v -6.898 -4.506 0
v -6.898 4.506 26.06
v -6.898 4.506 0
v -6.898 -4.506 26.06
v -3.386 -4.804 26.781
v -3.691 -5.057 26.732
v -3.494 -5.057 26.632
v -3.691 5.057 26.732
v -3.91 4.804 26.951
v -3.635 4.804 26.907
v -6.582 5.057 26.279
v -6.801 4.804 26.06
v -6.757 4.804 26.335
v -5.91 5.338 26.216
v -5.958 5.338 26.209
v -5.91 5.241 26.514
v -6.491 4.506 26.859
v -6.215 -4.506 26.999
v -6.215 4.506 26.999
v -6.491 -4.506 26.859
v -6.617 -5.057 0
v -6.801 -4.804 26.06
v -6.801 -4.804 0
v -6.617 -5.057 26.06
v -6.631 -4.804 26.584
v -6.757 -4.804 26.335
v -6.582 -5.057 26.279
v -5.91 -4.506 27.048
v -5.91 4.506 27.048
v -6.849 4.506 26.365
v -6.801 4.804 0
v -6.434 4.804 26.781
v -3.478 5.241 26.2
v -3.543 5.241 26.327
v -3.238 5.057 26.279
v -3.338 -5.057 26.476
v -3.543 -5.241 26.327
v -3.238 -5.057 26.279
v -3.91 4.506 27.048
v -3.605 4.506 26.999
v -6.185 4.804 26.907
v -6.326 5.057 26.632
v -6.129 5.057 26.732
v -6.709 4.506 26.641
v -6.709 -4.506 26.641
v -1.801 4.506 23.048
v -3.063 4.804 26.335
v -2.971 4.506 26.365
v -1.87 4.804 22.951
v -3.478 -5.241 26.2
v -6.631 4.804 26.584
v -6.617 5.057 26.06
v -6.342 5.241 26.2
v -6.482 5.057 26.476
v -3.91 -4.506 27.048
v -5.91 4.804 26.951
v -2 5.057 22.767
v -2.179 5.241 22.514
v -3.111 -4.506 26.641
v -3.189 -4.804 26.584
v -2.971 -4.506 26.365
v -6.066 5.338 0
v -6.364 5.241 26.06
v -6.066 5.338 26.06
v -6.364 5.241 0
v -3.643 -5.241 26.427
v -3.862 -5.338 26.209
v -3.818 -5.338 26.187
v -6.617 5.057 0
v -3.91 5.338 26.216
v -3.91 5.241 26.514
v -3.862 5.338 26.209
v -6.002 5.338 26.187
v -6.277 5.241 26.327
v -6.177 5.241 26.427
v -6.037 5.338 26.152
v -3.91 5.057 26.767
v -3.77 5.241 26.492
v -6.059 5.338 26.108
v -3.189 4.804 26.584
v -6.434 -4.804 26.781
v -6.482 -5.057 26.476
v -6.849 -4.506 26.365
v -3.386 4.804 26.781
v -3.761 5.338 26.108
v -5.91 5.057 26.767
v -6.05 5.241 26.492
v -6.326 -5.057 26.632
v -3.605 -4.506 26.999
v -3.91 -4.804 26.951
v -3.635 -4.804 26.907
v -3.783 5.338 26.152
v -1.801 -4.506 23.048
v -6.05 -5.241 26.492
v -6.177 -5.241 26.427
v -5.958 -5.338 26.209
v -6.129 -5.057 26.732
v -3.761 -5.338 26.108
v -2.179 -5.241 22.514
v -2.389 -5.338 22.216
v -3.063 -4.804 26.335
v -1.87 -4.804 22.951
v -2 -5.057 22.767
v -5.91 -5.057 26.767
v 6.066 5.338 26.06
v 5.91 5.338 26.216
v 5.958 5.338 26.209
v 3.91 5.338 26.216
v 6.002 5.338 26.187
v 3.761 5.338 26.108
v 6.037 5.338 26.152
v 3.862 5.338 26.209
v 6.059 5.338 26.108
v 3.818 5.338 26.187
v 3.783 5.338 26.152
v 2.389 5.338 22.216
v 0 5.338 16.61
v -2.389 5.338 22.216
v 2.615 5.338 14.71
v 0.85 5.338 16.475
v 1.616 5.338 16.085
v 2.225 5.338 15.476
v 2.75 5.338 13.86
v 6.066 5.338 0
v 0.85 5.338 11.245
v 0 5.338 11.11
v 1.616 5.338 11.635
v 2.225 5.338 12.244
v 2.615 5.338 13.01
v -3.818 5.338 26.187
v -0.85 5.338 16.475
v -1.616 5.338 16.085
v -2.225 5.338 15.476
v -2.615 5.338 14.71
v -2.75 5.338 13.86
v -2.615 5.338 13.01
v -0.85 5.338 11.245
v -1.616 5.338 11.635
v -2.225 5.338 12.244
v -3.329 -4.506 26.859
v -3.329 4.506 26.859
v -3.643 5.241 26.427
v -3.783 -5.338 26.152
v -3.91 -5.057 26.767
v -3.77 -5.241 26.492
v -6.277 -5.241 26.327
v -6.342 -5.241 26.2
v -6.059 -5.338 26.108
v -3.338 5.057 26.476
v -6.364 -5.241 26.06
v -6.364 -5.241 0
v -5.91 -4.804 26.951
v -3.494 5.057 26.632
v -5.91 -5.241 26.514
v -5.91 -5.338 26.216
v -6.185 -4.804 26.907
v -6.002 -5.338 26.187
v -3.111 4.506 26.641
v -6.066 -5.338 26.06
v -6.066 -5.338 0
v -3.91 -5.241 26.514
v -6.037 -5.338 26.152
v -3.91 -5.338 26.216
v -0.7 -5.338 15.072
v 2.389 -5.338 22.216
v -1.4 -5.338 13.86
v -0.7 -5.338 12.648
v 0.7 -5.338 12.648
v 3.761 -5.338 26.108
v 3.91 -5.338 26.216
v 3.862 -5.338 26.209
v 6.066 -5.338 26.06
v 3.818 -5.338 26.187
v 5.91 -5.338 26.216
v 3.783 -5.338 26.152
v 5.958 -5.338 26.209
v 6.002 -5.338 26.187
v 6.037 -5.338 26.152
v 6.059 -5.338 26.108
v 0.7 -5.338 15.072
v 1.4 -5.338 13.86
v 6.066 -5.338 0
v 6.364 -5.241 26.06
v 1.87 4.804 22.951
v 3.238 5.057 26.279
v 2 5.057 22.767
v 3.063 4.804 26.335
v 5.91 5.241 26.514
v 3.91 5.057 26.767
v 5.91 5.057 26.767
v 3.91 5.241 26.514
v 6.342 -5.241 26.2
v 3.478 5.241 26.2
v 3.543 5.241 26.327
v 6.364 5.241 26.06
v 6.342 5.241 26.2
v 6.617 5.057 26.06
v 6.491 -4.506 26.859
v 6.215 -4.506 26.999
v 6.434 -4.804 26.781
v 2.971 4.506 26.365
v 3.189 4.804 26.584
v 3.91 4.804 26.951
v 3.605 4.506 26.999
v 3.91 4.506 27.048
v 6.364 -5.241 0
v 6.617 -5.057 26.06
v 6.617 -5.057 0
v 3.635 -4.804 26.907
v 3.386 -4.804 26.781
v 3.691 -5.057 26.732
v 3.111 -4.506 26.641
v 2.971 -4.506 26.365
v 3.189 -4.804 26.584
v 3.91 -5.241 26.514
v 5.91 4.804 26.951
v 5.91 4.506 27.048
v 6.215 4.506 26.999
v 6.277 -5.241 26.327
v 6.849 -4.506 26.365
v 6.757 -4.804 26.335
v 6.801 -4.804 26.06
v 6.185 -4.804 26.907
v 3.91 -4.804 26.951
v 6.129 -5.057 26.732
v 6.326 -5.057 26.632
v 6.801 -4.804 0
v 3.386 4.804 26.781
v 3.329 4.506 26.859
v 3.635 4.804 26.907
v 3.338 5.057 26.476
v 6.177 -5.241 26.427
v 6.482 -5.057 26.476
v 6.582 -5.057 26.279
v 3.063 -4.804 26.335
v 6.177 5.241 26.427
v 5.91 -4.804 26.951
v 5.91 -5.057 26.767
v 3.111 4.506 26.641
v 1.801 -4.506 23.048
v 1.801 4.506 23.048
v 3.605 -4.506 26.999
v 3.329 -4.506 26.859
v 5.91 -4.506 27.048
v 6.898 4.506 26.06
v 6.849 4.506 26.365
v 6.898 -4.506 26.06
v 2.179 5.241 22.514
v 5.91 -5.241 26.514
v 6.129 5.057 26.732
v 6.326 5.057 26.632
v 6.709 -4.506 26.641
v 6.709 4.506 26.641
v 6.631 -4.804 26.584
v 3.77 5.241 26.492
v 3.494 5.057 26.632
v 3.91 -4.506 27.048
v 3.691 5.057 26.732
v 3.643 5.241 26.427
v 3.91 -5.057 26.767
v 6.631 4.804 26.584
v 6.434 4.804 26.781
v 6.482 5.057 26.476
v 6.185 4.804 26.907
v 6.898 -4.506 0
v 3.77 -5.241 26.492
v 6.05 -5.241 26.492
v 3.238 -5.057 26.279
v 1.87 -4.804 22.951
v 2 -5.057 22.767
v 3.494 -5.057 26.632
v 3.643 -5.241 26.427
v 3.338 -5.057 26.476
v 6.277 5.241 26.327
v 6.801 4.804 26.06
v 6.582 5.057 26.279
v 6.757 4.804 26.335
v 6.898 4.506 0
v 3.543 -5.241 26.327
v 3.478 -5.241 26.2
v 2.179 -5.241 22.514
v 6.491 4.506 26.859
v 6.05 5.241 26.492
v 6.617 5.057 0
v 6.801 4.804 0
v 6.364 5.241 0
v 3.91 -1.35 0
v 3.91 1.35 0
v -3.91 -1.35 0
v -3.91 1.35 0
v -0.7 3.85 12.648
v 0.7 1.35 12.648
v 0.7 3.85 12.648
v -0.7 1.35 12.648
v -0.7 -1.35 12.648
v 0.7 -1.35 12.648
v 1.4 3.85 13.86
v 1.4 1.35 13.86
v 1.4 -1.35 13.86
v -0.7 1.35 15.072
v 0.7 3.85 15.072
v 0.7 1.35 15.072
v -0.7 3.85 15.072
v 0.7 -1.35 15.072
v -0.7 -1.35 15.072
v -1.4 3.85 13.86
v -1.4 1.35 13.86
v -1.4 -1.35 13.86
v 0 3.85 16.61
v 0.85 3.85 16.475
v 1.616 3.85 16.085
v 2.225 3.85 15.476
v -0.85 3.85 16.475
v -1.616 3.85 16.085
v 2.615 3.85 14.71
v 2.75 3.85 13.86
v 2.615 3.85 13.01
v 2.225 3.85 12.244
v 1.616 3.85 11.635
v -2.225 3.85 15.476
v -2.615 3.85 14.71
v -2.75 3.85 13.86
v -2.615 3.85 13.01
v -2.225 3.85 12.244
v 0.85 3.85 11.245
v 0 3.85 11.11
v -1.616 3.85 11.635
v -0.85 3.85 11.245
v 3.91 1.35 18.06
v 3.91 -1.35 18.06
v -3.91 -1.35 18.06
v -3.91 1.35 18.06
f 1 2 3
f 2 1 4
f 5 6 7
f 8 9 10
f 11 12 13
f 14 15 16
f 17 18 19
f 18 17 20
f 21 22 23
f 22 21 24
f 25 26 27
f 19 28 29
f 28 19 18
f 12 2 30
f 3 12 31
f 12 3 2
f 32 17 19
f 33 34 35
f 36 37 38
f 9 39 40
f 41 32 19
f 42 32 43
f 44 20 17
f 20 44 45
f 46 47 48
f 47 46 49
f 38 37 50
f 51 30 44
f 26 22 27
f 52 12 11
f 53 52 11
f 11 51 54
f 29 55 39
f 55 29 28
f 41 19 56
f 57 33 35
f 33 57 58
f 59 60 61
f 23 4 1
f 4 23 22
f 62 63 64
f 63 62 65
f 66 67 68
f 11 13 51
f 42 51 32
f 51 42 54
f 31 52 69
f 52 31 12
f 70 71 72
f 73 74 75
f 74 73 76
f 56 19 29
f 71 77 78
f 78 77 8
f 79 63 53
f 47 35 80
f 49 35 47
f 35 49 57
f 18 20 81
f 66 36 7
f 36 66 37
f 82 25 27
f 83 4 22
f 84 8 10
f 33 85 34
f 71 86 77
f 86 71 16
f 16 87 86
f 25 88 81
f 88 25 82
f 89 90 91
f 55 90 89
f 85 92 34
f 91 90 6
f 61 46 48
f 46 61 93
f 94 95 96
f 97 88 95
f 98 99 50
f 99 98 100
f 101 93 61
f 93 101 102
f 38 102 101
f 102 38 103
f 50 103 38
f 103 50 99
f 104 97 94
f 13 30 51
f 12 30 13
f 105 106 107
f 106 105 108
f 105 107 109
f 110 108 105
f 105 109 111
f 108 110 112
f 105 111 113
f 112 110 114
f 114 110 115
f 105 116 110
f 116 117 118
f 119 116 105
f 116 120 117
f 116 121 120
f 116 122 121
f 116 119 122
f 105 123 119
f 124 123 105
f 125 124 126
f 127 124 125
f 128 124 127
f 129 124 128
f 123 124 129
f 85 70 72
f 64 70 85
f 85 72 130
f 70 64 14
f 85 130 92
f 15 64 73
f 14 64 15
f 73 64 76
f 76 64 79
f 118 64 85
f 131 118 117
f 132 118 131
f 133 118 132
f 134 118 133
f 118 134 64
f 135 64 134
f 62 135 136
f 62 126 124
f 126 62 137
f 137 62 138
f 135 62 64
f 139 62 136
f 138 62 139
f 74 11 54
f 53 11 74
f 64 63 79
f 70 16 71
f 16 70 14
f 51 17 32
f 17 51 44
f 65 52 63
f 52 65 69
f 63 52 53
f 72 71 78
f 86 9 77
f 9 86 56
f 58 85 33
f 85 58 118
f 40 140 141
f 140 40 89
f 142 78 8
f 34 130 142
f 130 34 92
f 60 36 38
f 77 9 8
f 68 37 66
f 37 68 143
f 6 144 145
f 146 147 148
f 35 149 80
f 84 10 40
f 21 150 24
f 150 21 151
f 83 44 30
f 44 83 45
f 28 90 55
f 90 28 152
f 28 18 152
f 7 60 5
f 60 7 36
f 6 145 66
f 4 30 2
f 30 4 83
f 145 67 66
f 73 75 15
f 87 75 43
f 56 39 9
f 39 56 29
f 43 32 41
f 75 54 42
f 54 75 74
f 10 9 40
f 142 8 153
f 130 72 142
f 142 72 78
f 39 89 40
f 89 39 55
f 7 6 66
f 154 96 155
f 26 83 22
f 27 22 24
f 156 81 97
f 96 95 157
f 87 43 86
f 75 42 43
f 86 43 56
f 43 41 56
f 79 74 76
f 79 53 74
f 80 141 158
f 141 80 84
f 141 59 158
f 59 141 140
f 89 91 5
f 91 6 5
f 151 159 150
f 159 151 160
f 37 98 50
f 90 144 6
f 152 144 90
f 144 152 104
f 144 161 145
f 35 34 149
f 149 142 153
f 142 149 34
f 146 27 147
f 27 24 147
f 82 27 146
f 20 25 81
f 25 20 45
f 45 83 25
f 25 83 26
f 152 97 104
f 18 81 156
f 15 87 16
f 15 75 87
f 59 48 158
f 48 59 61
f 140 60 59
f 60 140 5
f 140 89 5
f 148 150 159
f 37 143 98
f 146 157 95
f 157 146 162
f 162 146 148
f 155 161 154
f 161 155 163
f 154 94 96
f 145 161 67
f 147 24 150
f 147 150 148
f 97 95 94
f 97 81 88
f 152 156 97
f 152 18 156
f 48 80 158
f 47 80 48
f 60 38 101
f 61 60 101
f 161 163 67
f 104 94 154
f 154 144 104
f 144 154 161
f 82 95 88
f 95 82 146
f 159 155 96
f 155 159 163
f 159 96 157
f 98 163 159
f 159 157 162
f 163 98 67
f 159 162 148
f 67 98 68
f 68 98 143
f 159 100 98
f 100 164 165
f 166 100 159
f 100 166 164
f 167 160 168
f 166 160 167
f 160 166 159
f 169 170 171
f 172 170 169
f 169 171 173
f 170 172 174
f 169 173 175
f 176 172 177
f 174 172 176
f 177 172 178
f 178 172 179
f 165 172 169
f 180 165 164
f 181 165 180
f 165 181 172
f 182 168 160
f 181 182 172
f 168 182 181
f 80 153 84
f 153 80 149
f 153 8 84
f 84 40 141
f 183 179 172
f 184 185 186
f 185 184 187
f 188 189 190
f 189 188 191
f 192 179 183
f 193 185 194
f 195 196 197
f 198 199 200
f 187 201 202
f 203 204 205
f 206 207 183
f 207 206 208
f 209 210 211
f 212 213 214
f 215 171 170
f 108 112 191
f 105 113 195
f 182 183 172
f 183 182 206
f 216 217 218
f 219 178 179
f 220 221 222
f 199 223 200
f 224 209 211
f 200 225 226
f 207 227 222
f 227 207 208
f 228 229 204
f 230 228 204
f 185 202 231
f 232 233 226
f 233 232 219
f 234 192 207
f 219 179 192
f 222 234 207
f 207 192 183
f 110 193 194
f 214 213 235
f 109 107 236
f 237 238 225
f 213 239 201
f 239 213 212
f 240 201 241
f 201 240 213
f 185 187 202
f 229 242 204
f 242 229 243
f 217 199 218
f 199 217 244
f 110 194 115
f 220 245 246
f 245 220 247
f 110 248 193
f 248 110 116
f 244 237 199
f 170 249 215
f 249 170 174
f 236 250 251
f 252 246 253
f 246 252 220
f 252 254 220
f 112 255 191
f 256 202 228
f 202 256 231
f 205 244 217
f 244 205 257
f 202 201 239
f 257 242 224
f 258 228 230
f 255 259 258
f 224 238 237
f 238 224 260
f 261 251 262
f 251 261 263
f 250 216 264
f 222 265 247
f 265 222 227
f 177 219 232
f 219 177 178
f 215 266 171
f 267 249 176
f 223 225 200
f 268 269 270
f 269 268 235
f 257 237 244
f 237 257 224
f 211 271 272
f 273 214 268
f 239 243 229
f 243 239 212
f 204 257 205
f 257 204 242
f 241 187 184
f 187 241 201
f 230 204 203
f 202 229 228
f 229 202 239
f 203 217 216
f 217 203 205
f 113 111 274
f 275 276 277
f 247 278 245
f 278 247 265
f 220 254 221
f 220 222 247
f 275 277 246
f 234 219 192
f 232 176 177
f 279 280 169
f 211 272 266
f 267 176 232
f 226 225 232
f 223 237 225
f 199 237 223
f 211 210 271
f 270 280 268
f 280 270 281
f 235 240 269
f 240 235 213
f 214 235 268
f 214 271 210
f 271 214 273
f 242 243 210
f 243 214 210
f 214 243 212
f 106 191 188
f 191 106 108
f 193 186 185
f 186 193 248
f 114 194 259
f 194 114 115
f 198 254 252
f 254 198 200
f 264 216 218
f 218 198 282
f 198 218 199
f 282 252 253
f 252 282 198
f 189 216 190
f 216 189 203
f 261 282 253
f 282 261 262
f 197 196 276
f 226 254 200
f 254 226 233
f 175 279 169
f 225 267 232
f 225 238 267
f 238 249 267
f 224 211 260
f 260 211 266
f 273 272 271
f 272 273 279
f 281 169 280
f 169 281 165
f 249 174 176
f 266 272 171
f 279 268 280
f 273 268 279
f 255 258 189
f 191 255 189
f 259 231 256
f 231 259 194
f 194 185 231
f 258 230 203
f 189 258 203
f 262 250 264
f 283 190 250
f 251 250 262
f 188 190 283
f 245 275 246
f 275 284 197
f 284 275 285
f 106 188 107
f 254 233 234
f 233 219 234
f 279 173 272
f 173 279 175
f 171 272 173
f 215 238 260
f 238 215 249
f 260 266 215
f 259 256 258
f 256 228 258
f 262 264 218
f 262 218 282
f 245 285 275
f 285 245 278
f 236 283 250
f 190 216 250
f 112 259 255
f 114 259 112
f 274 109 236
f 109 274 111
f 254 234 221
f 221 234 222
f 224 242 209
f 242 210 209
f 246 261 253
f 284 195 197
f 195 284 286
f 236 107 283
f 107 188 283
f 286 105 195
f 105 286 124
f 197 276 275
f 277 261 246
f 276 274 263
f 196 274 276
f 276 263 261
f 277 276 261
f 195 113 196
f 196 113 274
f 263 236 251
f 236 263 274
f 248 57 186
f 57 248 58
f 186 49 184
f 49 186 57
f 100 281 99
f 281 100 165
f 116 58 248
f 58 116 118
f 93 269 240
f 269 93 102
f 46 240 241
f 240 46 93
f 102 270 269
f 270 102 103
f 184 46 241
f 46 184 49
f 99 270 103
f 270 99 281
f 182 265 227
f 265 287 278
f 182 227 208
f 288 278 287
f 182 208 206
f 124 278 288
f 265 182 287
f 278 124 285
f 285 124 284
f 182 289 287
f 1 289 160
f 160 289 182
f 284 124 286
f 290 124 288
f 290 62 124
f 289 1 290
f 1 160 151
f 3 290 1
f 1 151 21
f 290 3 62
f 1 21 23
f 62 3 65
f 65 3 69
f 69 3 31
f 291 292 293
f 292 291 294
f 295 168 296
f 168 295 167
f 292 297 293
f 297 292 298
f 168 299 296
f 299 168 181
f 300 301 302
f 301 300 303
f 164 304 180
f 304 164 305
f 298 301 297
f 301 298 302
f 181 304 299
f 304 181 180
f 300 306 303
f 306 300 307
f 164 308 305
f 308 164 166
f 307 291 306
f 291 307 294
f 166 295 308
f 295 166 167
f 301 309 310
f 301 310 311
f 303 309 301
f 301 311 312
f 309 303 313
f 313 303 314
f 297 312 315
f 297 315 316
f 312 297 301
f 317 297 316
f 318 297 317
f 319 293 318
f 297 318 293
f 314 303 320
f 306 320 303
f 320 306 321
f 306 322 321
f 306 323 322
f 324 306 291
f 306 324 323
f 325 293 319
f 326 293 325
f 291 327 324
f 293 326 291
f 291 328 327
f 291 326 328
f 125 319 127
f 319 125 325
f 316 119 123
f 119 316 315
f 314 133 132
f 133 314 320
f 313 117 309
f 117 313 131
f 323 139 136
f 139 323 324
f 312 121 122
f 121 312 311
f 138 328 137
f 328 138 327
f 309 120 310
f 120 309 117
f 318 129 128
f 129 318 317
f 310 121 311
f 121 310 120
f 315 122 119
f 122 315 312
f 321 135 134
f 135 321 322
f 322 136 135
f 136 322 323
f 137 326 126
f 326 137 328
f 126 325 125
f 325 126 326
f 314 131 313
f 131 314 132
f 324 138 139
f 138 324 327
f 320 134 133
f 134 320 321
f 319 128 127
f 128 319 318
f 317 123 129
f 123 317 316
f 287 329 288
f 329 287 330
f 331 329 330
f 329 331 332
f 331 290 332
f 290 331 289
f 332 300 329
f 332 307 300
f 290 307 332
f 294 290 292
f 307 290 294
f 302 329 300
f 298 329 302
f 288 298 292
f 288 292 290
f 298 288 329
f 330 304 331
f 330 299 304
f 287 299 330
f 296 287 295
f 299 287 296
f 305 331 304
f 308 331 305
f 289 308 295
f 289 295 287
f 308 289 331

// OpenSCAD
w = 7.62 + 0.2;
h = 2.50 + 0.2;
d = 17.86 + 0.2;
lg = 100;

btw = 2; // border thichness width direction
bth = 3; // border thichness height direction


module scube(x, xs, y, z, center=false) {
    if(center){
        linear_extrude(z, scale=[xs/x,1]) square([x,y], center=true);
    } else {
        translate([x/2,y/2,0])
            linear_extrude(z, scale=[xs/x,1]) square([x,y], center=true);
    }   
}

module screw_hole(dl, ds) {
    large = 100;
    cylinder(h=large, d=ds, $fn=6);
    mirror([0,0,1]) cylinder(h=large, d=dl, $fn=20);
}

difference() {
    intersection() {
        minkowski() {
            rotate([90,0,0]) sphere(r=1, $fn=20);
            difference() {
                translate([-btw-w/2,-bth-h/2,0]) cube([w+2*btw, h+2*bth, d+8]);
                translate([0,0,d+8]) mirror([0,0,1])
                    scube(x=w,xs=5, y=lg, z=4, center=true);
            }
        }
        linear_extrude(lg) square([lg,lg], center=true);
    }
	translate([-w/2,-h/2,0]) cube([w,h,d]);

    
    ds = 2.8;
    translate([0,h/2+2.5,d-0.2-2.6-ds/2]) rotate([90,0,0]) 
        screw_hole(dl=5.5, ds=ds);
}	
